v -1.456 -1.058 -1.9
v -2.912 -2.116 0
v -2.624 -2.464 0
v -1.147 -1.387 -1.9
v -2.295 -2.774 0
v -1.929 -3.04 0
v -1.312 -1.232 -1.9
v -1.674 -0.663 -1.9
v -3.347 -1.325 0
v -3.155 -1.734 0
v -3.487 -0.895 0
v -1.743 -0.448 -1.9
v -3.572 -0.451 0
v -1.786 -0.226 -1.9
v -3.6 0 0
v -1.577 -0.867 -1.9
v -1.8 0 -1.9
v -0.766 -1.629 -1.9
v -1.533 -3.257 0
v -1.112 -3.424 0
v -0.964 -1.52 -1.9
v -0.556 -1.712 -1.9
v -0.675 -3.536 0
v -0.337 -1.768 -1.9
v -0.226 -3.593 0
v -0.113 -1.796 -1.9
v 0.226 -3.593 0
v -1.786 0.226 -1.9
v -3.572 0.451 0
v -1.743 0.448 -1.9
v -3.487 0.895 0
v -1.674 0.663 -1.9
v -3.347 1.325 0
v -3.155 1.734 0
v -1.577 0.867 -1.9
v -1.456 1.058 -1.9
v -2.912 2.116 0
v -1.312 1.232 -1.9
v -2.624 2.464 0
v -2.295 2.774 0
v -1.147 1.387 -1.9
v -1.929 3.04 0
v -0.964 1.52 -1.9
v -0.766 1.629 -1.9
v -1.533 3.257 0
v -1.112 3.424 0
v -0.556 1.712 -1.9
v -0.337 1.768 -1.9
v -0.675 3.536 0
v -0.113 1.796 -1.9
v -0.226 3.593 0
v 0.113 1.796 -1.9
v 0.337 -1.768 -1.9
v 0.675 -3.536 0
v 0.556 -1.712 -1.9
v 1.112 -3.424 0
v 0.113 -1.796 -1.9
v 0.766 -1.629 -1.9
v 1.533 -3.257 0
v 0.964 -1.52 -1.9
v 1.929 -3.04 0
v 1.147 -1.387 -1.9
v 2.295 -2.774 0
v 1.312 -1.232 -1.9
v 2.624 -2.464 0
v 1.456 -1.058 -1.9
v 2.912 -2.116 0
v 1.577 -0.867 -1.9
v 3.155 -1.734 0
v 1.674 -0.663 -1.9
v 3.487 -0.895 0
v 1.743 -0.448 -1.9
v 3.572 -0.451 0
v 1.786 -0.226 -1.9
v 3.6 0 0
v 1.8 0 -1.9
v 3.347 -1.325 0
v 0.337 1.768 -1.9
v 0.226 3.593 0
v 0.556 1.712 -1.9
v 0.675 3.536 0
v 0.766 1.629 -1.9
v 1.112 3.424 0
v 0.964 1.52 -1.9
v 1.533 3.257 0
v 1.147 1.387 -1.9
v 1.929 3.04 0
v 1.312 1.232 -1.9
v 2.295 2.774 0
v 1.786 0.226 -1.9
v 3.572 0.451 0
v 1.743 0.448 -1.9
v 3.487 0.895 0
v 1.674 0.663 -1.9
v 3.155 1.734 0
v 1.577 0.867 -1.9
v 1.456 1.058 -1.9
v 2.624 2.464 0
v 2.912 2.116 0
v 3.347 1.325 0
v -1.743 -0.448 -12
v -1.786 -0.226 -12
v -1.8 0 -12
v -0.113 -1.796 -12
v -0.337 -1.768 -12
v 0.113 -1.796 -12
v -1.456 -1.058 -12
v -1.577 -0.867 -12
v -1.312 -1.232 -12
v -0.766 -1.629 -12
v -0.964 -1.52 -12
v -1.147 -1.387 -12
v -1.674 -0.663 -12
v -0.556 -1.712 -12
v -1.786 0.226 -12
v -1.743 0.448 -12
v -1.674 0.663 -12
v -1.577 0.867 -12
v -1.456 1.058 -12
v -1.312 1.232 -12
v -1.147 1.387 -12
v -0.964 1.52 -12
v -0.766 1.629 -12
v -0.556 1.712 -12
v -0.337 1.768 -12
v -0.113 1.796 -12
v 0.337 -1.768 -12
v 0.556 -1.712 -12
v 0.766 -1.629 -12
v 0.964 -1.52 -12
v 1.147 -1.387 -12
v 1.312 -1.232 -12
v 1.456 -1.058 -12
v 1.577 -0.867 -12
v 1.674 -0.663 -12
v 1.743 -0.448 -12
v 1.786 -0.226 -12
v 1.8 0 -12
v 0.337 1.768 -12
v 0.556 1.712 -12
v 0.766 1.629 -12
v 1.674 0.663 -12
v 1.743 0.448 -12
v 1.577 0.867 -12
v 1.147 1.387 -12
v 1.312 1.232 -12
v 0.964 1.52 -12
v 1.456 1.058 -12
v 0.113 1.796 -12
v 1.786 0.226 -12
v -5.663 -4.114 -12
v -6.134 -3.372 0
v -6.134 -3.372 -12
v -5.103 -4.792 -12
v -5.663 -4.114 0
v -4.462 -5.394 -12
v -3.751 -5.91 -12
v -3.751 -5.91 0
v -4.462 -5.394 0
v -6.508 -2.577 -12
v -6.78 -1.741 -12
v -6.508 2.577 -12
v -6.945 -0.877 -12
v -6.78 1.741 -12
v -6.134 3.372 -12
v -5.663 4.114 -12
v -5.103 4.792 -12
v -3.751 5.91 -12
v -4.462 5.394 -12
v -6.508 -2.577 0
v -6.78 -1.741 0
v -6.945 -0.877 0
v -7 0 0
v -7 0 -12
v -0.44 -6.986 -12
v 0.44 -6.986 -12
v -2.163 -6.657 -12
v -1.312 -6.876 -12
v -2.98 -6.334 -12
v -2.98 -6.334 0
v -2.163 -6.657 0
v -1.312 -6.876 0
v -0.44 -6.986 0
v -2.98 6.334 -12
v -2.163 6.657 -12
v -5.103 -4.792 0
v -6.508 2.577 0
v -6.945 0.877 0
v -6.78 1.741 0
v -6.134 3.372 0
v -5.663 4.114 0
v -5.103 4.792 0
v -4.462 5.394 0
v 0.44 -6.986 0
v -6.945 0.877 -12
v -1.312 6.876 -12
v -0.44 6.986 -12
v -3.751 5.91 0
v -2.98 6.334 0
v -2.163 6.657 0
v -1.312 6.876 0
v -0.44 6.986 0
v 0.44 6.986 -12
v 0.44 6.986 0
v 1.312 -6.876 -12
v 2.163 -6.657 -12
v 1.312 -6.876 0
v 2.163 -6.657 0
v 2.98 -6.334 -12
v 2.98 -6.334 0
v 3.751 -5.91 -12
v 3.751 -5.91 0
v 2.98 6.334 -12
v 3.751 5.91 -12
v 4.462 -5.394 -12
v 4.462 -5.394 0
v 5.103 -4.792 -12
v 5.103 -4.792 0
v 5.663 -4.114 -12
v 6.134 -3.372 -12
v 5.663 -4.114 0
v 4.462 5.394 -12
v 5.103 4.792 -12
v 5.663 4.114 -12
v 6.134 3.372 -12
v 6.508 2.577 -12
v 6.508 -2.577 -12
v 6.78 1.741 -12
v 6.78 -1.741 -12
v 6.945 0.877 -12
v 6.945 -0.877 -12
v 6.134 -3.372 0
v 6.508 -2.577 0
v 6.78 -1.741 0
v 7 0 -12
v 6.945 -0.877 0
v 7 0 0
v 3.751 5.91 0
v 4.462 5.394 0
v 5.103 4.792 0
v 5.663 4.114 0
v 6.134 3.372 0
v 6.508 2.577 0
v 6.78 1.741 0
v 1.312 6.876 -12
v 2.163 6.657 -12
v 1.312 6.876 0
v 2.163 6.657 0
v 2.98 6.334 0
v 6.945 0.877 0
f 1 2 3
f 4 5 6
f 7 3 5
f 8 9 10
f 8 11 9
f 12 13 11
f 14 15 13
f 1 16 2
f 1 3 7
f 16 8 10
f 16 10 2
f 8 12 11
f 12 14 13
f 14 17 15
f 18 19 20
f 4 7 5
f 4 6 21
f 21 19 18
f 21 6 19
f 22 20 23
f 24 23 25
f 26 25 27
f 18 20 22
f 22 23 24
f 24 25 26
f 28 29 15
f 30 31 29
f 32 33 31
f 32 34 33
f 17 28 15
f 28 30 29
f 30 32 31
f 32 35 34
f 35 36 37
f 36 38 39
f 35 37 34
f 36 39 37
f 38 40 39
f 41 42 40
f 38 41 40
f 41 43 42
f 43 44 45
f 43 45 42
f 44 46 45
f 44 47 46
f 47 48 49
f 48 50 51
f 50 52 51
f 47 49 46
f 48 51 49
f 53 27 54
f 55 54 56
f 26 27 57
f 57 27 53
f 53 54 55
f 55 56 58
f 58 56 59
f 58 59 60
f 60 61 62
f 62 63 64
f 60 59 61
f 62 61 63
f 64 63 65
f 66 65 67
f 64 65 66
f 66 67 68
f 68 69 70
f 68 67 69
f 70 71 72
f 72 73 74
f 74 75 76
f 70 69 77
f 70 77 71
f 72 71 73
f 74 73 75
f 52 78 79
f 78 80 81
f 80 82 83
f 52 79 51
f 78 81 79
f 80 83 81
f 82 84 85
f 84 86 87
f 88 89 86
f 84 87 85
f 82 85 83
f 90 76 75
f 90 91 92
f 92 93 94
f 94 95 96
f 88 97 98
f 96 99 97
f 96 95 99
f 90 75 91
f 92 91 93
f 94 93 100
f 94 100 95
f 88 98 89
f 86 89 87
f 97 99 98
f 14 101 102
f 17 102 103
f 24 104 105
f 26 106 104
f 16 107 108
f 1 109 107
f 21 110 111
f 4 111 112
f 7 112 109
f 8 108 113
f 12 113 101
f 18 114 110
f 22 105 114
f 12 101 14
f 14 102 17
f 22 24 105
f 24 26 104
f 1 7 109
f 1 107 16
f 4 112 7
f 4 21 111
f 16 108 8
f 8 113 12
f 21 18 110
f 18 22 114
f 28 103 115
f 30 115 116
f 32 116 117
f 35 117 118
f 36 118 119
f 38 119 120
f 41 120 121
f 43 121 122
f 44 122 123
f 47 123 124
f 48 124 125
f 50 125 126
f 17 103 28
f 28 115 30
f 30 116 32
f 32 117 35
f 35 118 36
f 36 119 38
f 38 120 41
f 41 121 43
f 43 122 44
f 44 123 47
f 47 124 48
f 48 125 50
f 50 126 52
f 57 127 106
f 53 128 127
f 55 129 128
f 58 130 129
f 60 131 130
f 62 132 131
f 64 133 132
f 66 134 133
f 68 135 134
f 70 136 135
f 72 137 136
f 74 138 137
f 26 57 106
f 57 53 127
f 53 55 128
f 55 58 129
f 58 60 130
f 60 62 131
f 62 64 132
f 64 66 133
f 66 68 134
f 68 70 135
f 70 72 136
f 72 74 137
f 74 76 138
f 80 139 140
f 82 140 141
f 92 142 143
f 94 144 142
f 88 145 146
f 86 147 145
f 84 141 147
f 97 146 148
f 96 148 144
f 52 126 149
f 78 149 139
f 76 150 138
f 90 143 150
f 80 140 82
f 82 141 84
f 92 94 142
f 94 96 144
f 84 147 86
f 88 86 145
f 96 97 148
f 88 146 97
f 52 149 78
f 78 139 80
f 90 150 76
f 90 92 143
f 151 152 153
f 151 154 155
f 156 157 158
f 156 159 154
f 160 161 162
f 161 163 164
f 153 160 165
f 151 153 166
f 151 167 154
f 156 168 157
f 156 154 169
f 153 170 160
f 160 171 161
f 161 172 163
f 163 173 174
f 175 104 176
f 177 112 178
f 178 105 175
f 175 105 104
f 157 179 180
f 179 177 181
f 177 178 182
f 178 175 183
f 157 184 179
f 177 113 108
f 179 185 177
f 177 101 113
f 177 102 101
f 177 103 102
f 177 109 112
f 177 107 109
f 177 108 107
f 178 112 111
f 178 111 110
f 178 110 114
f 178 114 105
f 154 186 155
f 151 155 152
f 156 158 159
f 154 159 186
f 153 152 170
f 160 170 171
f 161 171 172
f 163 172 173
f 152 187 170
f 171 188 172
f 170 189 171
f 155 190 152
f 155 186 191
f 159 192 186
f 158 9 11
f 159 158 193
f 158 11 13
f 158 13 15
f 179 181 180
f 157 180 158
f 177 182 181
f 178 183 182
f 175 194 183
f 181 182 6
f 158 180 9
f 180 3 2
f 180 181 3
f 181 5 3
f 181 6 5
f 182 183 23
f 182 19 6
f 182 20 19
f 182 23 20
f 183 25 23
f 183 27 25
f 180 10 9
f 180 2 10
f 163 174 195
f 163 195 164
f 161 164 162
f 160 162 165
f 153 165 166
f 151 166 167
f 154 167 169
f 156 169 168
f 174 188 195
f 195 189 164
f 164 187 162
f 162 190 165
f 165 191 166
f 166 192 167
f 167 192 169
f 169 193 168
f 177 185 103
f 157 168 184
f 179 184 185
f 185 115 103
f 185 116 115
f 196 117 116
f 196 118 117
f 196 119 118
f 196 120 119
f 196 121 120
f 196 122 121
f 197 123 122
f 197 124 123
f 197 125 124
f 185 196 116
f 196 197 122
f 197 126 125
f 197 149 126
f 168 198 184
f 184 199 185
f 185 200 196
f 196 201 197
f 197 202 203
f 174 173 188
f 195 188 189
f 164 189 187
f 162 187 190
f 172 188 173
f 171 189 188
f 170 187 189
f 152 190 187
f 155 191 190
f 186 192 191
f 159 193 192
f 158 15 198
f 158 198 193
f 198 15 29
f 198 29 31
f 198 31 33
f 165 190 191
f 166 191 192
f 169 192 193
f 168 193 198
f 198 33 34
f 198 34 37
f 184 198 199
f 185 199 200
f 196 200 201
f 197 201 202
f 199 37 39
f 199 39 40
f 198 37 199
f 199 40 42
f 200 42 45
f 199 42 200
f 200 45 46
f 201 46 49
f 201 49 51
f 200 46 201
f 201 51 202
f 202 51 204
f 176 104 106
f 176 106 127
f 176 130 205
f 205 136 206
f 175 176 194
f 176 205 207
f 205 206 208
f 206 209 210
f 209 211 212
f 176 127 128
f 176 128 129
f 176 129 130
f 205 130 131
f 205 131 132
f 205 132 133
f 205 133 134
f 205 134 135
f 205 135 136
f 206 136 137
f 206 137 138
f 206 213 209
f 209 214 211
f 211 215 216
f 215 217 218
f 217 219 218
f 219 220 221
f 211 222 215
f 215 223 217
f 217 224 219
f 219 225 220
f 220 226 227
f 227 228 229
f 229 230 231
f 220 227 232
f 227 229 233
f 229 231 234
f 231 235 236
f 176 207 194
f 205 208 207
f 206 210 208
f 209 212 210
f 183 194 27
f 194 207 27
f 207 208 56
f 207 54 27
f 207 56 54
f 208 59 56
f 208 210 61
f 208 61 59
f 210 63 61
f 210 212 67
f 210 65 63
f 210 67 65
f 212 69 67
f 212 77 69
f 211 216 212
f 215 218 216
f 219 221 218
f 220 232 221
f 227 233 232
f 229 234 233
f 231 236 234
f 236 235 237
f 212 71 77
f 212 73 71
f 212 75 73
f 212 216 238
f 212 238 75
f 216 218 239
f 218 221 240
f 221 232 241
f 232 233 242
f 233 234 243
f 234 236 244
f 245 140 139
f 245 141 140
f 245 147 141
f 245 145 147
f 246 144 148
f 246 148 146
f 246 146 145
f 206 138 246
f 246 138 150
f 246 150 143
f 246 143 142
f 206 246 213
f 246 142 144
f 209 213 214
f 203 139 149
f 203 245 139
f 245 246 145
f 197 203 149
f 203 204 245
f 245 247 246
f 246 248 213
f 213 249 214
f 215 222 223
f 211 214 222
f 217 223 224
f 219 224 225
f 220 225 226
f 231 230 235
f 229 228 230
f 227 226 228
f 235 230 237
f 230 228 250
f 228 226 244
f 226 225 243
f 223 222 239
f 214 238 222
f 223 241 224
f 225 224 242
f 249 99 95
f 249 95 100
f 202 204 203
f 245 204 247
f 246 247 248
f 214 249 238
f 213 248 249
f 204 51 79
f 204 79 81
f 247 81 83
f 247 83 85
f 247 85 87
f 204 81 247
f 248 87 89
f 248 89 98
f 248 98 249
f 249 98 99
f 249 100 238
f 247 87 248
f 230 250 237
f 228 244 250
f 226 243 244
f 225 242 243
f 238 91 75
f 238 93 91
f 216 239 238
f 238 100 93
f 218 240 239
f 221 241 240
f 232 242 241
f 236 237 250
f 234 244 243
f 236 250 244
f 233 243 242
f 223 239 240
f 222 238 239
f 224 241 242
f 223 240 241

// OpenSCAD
$fn = 50;

difference() {
	union() {
		translate(v = [0, 0, -12.0]) {
			cylinder(h = 12, r = 7.0);
		}
	}
	union() {
		translate(v = [0, 0, 0]) {
			rotate(a = [0, 0, 0]) {
				difference() {
					union() {
						translate(v = [0, 0, -15.0]) {
							cylinder(h = 15, r = 1.5);
						}
						translate(v = [0, 0, -1.9]) {
							cylinder(h = 1.9, r1 = 1.8, r2 = 3.6);
						}
						translate(v = [0, 0, -15.0]) {
							cylinder(h = 15, r = 1.8);
						}
						translate(v = [0, 0, -15.0]) {
							cylinder(h = 15, r = 1.5);
						}
					}
					union();
				}
			}
		}
	}
}
